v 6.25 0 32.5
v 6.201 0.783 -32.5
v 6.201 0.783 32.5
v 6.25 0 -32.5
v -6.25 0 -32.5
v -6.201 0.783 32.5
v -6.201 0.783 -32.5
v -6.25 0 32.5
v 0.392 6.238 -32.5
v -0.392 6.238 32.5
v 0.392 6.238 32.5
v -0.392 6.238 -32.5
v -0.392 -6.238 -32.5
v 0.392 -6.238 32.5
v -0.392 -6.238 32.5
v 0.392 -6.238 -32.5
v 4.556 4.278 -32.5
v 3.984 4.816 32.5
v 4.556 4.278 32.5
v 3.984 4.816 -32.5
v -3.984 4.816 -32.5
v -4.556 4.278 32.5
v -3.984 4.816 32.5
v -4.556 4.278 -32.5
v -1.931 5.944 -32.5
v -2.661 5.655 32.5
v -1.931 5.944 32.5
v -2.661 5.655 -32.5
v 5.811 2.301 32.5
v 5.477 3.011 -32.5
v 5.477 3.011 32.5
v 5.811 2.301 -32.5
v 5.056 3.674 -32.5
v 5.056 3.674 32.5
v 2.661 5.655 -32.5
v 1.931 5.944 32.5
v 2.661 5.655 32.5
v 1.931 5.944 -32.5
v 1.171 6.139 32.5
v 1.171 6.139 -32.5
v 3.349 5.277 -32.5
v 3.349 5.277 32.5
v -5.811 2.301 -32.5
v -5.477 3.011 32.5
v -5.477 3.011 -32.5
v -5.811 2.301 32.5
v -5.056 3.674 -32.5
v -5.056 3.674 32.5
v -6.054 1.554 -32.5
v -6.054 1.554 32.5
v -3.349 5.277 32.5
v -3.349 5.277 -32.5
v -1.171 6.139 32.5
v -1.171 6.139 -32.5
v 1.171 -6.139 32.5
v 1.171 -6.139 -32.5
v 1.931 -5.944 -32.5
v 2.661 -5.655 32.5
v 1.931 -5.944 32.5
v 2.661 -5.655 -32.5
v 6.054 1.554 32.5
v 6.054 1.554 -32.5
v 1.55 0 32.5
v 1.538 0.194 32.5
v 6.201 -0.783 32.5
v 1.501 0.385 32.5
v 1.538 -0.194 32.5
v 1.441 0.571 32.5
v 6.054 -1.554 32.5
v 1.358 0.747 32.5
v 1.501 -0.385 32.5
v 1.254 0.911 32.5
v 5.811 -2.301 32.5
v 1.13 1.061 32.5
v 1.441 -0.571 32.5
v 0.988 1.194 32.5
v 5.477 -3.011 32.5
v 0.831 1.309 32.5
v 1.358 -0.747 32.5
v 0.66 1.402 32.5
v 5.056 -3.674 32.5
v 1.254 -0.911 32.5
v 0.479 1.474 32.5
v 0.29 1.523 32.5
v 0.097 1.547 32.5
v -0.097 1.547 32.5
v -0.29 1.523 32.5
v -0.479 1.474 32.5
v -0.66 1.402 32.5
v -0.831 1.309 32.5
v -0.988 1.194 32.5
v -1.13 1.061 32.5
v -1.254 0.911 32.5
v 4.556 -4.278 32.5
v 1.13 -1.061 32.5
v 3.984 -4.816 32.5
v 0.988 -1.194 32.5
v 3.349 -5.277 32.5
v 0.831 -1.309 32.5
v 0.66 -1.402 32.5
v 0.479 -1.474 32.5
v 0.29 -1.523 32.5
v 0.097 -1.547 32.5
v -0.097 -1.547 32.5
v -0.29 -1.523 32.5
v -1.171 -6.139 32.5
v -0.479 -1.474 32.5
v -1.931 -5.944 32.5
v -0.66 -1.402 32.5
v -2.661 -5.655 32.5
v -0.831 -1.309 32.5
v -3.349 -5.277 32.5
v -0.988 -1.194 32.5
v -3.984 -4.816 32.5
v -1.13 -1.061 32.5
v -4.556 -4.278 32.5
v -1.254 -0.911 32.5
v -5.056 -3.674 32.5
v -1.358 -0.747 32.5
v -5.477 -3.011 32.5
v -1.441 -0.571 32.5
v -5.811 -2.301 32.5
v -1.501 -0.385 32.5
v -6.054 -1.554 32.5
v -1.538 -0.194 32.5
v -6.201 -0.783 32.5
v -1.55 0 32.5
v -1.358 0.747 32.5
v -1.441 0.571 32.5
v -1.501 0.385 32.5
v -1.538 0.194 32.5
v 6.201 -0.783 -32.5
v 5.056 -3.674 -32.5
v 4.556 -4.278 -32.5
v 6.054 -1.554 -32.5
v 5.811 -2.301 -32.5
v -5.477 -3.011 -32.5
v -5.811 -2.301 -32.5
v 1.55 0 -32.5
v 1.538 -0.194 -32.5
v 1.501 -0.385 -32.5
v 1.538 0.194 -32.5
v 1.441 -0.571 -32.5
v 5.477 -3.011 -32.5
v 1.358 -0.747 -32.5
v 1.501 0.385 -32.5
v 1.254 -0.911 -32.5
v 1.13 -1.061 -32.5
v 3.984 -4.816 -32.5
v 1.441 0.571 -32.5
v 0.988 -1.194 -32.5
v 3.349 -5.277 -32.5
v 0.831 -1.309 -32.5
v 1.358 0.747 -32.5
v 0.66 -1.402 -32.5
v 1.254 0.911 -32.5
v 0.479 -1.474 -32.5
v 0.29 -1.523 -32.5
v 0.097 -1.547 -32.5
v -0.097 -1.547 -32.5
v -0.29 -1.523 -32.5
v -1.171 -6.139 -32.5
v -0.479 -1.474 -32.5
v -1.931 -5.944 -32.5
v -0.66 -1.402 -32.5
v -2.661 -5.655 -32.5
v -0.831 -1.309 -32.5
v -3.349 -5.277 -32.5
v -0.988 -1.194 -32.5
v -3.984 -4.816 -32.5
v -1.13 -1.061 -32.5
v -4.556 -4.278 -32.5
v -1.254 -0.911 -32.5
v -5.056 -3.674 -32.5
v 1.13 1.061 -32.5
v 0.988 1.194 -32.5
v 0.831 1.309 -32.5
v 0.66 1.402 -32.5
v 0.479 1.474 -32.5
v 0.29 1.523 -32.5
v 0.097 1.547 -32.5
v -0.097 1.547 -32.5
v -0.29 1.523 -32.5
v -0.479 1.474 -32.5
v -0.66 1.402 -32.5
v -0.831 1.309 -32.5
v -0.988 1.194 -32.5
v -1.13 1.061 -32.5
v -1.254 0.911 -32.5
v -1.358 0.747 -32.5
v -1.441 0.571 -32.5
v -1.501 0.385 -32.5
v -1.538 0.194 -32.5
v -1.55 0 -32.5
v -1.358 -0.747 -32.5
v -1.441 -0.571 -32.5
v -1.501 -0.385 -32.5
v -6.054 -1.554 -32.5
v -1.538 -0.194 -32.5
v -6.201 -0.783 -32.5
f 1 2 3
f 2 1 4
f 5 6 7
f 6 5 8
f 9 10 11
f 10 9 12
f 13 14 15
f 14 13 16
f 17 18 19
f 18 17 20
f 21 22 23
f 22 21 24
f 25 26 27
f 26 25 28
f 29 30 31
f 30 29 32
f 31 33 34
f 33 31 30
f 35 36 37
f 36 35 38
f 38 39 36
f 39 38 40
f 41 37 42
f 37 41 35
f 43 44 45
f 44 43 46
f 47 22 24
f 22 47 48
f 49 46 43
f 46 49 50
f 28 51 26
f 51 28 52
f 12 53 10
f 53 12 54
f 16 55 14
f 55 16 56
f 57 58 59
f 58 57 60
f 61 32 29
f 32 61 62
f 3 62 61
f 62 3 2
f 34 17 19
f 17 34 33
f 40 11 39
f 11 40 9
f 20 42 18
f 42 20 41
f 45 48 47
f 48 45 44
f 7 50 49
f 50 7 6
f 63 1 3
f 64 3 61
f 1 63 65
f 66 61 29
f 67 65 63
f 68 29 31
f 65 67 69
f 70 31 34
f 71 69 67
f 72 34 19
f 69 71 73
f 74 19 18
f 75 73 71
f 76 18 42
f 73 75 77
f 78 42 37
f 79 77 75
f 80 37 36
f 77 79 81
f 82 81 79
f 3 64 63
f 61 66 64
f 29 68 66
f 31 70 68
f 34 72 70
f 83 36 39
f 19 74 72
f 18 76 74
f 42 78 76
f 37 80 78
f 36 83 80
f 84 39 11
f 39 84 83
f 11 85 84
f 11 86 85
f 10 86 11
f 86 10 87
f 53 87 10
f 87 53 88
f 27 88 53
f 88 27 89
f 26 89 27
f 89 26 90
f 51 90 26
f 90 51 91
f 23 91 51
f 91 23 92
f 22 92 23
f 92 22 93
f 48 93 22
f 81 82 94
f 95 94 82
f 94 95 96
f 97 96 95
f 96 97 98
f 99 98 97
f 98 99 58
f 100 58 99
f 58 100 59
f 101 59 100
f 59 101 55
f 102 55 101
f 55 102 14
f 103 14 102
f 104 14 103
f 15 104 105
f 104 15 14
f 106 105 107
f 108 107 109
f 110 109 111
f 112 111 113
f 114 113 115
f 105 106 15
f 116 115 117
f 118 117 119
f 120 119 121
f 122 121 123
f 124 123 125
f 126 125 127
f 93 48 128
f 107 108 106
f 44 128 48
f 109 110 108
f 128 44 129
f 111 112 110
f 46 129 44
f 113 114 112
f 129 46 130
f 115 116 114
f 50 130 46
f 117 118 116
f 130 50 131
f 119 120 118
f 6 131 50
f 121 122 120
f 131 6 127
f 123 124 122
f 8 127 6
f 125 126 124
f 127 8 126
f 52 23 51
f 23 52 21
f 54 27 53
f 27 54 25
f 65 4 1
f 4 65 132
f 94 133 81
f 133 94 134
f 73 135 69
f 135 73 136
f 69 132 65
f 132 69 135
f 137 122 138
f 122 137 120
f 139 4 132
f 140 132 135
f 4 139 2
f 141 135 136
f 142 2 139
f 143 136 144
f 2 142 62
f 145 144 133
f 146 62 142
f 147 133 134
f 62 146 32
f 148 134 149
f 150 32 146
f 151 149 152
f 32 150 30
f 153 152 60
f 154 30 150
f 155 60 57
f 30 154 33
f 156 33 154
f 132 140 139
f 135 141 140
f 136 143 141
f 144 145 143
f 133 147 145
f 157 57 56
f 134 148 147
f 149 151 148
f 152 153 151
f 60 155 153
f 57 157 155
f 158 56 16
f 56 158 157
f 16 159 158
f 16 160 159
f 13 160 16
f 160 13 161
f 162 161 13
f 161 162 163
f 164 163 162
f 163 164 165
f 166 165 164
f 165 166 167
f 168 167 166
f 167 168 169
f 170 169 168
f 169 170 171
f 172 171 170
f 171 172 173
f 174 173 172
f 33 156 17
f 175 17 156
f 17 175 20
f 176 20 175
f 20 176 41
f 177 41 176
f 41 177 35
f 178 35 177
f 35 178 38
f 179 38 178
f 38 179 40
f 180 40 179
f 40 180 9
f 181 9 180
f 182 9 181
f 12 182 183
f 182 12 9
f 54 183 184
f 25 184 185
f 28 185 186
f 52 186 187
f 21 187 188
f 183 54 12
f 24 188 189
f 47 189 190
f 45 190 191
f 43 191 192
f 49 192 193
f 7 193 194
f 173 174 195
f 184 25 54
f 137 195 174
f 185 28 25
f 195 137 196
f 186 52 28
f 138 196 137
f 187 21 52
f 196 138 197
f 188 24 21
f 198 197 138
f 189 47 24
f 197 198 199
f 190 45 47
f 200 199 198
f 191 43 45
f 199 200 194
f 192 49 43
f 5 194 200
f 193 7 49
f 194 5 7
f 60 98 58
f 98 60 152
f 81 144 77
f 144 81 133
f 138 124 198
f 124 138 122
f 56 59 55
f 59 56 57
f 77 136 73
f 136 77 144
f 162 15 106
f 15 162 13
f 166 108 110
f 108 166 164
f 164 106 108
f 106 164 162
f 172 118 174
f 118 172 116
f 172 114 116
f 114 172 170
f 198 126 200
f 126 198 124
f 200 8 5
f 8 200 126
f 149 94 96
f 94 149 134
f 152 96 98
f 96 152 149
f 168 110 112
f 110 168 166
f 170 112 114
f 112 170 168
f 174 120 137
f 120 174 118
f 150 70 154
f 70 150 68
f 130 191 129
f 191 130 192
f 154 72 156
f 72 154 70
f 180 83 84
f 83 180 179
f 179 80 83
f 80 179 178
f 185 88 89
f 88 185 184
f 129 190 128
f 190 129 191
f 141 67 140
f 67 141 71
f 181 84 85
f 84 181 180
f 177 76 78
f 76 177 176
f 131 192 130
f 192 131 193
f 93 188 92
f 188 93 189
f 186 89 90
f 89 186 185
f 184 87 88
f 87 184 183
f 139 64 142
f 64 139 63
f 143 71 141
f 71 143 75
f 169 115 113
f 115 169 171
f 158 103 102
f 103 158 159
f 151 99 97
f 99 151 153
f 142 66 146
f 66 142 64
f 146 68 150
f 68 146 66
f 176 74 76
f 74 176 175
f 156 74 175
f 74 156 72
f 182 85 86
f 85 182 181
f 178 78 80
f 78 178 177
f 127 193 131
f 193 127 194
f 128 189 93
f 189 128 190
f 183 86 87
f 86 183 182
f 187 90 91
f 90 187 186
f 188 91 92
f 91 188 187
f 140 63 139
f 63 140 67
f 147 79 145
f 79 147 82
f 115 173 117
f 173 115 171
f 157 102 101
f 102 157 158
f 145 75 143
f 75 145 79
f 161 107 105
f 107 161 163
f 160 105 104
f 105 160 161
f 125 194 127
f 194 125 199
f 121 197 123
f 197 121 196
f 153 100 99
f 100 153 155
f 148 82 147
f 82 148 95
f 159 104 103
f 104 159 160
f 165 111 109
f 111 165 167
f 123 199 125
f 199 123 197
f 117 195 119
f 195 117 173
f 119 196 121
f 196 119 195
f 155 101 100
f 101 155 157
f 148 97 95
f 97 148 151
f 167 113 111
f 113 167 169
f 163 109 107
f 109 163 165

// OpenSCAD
$fn = 50;


difference() {
	union() {
		translate(v = [0, 0, -32.5000000000]) {
			cylinder(h = 65, r = 6.2500000000);
		}
	}
	union() {
		translate(v = [0, 0, -100.0000000000]) {
			cylinder(h = 200, r = 1.5500000000);
		}
	}
}
